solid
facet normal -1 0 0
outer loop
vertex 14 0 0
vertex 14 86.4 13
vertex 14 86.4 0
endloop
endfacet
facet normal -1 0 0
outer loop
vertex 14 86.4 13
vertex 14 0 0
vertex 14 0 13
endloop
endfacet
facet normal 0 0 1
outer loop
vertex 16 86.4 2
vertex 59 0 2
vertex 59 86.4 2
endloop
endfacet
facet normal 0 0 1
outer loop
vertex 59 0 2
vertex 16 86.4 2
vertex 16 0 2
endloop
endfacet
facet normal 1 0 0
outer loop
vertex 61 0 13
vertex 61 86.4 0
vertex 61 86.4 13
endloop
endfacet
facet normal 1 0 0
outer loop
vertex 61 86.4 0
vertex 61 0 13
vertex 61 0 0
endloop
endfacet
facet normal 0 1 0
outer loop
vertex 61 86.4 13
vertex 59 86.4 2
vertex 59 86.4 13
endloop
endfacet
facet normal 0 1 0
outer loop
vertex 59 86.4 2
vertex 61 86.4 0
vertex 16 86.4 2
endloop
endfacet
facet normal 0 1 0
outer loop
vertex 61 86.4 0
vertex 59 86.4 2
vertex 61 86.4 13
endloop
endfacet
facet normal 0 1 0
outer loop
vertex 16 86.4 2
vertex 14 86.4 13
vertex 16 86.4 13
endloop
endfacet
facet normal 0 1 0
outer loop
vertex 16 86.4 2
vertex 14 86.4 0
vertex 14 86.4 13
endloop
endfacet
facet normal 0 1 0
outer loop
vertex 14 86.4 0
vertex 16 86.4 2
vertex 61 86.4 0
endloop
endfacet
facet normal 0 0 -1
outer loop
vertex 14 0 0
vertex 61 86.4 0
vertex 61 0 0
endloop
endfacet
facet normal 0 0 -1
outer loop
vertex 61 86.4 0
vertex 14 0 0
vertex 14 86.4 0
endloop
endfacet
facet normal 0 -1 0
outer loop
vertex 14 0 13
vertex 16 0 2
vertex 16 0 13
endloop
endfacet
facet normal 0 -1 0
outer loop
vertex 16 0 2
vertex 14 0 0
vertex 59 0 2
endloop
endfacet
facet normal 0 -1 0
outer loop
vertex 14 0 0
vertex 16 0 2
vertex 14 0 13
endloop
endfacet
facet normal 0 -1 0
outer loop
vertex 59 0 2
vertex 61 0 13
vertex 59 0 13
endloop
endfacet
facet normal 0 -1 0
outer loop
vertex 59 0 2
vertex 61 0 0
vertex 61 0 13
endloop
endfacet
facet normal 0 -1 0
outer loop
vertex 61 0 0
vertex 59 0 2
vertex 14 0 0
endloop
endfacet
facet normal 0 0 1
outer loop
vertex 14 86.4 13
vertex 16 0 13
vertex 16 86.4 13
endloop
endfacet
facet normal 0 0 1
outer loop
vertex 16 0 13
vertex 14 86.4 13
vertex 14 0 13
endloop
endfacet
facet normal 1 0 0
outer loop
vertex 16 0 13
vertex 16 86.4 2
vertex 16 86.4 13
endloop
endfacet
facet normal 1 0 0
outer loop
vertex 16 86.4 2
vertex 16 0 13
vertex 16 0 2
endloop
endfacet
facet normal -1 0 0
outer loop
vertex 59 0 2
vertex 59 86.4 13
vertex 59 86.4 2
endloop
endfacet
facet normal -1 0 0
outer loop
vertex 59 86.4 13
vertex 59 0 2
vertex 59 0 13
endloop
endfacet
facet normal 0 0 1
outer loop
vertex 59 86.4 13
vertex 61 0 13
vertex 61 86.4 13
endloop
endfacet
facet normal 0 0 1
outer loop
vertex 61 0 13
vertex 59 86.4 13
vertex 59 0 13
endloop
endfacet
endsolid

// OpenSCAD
// pusher_block_U.scad
// U 形推动块 / 滑块（重构版：与 sliding_track_base 互配，凹槽居中）
// 尺寸：47mm(X, 宽) × 140mm(Y, 长) × 13mm(Z, 高)
// 形状：U 形滑槽 = 底板 + 左立板 + 右立板
// 坐标系：左下后角 (X=0, Y=0, Z=0) 为原点
//   X  →  右（宽 47）
//   Y  →  长 140
//   Z  →  上（高 13）
//
// 使用方式：U 件倒扣（开口朝下），让两条立板的底缘嵌进 sliding_track_base
//           顶面两条矩形导轨凹槽中，沿 Y 方向滑行。
//
// 互配关系（必须与 sliding_track_base.scad 同步修改）：
//   底板导轨凹槽（关于 X 中心 X=37.5 对称居中）：
//     左侧 X∈[14, 16]（中心 15）  右侧 X∈[59, 61]（中心 60）
//   U 件立板 X∈[14, 16] 和 X∈[59, 61]，宽 2mm，高 11mm
//   立板中心 X=15 和 X=60，正好落在底板两凹槽正中央
//
// 局部坐标系（U 件）下，U 件底板 X∈[14, 61]（外宽 47），立板紧贴底板两端。
// 实际使用时通过 translate 把 U 件放置到全局坐标系下，让立板对齐底板凹槽。
// 本文件不嵌入任何 translate——全局坐标 = 局部坐标。
//
// 结构拆分（3 块板 union）：
//   底板：   X∈[14,61],   Y∈[0,140],   Z∈[0, 2]      （厚 2）
//   左立板： X∈[14,16],   Y∈[0,140],   Z∈[2,13]      （厚 2，高 11）
//   右立板： X∈[59,61],   Y∈[0,140],   Z∈[2,13]      （厚 2，高 11）
//   内部滑槽空间：X∈[16,59]（净宽 43）, Z∈[2,13]（净高 11）, Y∈[0,140]（全贯通）

pusher_w = 47;   // 外宽 X
pusher_l = 86.4; // 外长 Y
pusher_h = 13;   // 外高 Z
wall_t   = 2;    // 壁厚（立板）
floor_t  = 2;    // 底板厚

// 底板 X 起点（局部坐标）= 14（让底板 X∈[14, 61]）
floor_x  = 14;

// 立板 X 起点
left_wall_x  = 14;  // 左立板 X 起点
right_wall_x = 59;  // 右立板 X 起点

module pusher_block_U() {
    color("OrangeRed")
    union() {
        // 底板（X∈[14, 61]）
        translate([floor_x, 0, 0])
            cube([pusher_w, pusher_l, floor_t]);

        // 左立板
        translate([left_wall_x, 0, floor_t])
            cube([wall_t, pusher_l, pusher_h - floor_t]);

        // 右立板
        translate([right_wall_x, 0, floor_t])
            cube([wall_t, pusher_l, pusher_h - floor_t]);
    }
}

// 独立预览/渲染
pusher_block_U();
